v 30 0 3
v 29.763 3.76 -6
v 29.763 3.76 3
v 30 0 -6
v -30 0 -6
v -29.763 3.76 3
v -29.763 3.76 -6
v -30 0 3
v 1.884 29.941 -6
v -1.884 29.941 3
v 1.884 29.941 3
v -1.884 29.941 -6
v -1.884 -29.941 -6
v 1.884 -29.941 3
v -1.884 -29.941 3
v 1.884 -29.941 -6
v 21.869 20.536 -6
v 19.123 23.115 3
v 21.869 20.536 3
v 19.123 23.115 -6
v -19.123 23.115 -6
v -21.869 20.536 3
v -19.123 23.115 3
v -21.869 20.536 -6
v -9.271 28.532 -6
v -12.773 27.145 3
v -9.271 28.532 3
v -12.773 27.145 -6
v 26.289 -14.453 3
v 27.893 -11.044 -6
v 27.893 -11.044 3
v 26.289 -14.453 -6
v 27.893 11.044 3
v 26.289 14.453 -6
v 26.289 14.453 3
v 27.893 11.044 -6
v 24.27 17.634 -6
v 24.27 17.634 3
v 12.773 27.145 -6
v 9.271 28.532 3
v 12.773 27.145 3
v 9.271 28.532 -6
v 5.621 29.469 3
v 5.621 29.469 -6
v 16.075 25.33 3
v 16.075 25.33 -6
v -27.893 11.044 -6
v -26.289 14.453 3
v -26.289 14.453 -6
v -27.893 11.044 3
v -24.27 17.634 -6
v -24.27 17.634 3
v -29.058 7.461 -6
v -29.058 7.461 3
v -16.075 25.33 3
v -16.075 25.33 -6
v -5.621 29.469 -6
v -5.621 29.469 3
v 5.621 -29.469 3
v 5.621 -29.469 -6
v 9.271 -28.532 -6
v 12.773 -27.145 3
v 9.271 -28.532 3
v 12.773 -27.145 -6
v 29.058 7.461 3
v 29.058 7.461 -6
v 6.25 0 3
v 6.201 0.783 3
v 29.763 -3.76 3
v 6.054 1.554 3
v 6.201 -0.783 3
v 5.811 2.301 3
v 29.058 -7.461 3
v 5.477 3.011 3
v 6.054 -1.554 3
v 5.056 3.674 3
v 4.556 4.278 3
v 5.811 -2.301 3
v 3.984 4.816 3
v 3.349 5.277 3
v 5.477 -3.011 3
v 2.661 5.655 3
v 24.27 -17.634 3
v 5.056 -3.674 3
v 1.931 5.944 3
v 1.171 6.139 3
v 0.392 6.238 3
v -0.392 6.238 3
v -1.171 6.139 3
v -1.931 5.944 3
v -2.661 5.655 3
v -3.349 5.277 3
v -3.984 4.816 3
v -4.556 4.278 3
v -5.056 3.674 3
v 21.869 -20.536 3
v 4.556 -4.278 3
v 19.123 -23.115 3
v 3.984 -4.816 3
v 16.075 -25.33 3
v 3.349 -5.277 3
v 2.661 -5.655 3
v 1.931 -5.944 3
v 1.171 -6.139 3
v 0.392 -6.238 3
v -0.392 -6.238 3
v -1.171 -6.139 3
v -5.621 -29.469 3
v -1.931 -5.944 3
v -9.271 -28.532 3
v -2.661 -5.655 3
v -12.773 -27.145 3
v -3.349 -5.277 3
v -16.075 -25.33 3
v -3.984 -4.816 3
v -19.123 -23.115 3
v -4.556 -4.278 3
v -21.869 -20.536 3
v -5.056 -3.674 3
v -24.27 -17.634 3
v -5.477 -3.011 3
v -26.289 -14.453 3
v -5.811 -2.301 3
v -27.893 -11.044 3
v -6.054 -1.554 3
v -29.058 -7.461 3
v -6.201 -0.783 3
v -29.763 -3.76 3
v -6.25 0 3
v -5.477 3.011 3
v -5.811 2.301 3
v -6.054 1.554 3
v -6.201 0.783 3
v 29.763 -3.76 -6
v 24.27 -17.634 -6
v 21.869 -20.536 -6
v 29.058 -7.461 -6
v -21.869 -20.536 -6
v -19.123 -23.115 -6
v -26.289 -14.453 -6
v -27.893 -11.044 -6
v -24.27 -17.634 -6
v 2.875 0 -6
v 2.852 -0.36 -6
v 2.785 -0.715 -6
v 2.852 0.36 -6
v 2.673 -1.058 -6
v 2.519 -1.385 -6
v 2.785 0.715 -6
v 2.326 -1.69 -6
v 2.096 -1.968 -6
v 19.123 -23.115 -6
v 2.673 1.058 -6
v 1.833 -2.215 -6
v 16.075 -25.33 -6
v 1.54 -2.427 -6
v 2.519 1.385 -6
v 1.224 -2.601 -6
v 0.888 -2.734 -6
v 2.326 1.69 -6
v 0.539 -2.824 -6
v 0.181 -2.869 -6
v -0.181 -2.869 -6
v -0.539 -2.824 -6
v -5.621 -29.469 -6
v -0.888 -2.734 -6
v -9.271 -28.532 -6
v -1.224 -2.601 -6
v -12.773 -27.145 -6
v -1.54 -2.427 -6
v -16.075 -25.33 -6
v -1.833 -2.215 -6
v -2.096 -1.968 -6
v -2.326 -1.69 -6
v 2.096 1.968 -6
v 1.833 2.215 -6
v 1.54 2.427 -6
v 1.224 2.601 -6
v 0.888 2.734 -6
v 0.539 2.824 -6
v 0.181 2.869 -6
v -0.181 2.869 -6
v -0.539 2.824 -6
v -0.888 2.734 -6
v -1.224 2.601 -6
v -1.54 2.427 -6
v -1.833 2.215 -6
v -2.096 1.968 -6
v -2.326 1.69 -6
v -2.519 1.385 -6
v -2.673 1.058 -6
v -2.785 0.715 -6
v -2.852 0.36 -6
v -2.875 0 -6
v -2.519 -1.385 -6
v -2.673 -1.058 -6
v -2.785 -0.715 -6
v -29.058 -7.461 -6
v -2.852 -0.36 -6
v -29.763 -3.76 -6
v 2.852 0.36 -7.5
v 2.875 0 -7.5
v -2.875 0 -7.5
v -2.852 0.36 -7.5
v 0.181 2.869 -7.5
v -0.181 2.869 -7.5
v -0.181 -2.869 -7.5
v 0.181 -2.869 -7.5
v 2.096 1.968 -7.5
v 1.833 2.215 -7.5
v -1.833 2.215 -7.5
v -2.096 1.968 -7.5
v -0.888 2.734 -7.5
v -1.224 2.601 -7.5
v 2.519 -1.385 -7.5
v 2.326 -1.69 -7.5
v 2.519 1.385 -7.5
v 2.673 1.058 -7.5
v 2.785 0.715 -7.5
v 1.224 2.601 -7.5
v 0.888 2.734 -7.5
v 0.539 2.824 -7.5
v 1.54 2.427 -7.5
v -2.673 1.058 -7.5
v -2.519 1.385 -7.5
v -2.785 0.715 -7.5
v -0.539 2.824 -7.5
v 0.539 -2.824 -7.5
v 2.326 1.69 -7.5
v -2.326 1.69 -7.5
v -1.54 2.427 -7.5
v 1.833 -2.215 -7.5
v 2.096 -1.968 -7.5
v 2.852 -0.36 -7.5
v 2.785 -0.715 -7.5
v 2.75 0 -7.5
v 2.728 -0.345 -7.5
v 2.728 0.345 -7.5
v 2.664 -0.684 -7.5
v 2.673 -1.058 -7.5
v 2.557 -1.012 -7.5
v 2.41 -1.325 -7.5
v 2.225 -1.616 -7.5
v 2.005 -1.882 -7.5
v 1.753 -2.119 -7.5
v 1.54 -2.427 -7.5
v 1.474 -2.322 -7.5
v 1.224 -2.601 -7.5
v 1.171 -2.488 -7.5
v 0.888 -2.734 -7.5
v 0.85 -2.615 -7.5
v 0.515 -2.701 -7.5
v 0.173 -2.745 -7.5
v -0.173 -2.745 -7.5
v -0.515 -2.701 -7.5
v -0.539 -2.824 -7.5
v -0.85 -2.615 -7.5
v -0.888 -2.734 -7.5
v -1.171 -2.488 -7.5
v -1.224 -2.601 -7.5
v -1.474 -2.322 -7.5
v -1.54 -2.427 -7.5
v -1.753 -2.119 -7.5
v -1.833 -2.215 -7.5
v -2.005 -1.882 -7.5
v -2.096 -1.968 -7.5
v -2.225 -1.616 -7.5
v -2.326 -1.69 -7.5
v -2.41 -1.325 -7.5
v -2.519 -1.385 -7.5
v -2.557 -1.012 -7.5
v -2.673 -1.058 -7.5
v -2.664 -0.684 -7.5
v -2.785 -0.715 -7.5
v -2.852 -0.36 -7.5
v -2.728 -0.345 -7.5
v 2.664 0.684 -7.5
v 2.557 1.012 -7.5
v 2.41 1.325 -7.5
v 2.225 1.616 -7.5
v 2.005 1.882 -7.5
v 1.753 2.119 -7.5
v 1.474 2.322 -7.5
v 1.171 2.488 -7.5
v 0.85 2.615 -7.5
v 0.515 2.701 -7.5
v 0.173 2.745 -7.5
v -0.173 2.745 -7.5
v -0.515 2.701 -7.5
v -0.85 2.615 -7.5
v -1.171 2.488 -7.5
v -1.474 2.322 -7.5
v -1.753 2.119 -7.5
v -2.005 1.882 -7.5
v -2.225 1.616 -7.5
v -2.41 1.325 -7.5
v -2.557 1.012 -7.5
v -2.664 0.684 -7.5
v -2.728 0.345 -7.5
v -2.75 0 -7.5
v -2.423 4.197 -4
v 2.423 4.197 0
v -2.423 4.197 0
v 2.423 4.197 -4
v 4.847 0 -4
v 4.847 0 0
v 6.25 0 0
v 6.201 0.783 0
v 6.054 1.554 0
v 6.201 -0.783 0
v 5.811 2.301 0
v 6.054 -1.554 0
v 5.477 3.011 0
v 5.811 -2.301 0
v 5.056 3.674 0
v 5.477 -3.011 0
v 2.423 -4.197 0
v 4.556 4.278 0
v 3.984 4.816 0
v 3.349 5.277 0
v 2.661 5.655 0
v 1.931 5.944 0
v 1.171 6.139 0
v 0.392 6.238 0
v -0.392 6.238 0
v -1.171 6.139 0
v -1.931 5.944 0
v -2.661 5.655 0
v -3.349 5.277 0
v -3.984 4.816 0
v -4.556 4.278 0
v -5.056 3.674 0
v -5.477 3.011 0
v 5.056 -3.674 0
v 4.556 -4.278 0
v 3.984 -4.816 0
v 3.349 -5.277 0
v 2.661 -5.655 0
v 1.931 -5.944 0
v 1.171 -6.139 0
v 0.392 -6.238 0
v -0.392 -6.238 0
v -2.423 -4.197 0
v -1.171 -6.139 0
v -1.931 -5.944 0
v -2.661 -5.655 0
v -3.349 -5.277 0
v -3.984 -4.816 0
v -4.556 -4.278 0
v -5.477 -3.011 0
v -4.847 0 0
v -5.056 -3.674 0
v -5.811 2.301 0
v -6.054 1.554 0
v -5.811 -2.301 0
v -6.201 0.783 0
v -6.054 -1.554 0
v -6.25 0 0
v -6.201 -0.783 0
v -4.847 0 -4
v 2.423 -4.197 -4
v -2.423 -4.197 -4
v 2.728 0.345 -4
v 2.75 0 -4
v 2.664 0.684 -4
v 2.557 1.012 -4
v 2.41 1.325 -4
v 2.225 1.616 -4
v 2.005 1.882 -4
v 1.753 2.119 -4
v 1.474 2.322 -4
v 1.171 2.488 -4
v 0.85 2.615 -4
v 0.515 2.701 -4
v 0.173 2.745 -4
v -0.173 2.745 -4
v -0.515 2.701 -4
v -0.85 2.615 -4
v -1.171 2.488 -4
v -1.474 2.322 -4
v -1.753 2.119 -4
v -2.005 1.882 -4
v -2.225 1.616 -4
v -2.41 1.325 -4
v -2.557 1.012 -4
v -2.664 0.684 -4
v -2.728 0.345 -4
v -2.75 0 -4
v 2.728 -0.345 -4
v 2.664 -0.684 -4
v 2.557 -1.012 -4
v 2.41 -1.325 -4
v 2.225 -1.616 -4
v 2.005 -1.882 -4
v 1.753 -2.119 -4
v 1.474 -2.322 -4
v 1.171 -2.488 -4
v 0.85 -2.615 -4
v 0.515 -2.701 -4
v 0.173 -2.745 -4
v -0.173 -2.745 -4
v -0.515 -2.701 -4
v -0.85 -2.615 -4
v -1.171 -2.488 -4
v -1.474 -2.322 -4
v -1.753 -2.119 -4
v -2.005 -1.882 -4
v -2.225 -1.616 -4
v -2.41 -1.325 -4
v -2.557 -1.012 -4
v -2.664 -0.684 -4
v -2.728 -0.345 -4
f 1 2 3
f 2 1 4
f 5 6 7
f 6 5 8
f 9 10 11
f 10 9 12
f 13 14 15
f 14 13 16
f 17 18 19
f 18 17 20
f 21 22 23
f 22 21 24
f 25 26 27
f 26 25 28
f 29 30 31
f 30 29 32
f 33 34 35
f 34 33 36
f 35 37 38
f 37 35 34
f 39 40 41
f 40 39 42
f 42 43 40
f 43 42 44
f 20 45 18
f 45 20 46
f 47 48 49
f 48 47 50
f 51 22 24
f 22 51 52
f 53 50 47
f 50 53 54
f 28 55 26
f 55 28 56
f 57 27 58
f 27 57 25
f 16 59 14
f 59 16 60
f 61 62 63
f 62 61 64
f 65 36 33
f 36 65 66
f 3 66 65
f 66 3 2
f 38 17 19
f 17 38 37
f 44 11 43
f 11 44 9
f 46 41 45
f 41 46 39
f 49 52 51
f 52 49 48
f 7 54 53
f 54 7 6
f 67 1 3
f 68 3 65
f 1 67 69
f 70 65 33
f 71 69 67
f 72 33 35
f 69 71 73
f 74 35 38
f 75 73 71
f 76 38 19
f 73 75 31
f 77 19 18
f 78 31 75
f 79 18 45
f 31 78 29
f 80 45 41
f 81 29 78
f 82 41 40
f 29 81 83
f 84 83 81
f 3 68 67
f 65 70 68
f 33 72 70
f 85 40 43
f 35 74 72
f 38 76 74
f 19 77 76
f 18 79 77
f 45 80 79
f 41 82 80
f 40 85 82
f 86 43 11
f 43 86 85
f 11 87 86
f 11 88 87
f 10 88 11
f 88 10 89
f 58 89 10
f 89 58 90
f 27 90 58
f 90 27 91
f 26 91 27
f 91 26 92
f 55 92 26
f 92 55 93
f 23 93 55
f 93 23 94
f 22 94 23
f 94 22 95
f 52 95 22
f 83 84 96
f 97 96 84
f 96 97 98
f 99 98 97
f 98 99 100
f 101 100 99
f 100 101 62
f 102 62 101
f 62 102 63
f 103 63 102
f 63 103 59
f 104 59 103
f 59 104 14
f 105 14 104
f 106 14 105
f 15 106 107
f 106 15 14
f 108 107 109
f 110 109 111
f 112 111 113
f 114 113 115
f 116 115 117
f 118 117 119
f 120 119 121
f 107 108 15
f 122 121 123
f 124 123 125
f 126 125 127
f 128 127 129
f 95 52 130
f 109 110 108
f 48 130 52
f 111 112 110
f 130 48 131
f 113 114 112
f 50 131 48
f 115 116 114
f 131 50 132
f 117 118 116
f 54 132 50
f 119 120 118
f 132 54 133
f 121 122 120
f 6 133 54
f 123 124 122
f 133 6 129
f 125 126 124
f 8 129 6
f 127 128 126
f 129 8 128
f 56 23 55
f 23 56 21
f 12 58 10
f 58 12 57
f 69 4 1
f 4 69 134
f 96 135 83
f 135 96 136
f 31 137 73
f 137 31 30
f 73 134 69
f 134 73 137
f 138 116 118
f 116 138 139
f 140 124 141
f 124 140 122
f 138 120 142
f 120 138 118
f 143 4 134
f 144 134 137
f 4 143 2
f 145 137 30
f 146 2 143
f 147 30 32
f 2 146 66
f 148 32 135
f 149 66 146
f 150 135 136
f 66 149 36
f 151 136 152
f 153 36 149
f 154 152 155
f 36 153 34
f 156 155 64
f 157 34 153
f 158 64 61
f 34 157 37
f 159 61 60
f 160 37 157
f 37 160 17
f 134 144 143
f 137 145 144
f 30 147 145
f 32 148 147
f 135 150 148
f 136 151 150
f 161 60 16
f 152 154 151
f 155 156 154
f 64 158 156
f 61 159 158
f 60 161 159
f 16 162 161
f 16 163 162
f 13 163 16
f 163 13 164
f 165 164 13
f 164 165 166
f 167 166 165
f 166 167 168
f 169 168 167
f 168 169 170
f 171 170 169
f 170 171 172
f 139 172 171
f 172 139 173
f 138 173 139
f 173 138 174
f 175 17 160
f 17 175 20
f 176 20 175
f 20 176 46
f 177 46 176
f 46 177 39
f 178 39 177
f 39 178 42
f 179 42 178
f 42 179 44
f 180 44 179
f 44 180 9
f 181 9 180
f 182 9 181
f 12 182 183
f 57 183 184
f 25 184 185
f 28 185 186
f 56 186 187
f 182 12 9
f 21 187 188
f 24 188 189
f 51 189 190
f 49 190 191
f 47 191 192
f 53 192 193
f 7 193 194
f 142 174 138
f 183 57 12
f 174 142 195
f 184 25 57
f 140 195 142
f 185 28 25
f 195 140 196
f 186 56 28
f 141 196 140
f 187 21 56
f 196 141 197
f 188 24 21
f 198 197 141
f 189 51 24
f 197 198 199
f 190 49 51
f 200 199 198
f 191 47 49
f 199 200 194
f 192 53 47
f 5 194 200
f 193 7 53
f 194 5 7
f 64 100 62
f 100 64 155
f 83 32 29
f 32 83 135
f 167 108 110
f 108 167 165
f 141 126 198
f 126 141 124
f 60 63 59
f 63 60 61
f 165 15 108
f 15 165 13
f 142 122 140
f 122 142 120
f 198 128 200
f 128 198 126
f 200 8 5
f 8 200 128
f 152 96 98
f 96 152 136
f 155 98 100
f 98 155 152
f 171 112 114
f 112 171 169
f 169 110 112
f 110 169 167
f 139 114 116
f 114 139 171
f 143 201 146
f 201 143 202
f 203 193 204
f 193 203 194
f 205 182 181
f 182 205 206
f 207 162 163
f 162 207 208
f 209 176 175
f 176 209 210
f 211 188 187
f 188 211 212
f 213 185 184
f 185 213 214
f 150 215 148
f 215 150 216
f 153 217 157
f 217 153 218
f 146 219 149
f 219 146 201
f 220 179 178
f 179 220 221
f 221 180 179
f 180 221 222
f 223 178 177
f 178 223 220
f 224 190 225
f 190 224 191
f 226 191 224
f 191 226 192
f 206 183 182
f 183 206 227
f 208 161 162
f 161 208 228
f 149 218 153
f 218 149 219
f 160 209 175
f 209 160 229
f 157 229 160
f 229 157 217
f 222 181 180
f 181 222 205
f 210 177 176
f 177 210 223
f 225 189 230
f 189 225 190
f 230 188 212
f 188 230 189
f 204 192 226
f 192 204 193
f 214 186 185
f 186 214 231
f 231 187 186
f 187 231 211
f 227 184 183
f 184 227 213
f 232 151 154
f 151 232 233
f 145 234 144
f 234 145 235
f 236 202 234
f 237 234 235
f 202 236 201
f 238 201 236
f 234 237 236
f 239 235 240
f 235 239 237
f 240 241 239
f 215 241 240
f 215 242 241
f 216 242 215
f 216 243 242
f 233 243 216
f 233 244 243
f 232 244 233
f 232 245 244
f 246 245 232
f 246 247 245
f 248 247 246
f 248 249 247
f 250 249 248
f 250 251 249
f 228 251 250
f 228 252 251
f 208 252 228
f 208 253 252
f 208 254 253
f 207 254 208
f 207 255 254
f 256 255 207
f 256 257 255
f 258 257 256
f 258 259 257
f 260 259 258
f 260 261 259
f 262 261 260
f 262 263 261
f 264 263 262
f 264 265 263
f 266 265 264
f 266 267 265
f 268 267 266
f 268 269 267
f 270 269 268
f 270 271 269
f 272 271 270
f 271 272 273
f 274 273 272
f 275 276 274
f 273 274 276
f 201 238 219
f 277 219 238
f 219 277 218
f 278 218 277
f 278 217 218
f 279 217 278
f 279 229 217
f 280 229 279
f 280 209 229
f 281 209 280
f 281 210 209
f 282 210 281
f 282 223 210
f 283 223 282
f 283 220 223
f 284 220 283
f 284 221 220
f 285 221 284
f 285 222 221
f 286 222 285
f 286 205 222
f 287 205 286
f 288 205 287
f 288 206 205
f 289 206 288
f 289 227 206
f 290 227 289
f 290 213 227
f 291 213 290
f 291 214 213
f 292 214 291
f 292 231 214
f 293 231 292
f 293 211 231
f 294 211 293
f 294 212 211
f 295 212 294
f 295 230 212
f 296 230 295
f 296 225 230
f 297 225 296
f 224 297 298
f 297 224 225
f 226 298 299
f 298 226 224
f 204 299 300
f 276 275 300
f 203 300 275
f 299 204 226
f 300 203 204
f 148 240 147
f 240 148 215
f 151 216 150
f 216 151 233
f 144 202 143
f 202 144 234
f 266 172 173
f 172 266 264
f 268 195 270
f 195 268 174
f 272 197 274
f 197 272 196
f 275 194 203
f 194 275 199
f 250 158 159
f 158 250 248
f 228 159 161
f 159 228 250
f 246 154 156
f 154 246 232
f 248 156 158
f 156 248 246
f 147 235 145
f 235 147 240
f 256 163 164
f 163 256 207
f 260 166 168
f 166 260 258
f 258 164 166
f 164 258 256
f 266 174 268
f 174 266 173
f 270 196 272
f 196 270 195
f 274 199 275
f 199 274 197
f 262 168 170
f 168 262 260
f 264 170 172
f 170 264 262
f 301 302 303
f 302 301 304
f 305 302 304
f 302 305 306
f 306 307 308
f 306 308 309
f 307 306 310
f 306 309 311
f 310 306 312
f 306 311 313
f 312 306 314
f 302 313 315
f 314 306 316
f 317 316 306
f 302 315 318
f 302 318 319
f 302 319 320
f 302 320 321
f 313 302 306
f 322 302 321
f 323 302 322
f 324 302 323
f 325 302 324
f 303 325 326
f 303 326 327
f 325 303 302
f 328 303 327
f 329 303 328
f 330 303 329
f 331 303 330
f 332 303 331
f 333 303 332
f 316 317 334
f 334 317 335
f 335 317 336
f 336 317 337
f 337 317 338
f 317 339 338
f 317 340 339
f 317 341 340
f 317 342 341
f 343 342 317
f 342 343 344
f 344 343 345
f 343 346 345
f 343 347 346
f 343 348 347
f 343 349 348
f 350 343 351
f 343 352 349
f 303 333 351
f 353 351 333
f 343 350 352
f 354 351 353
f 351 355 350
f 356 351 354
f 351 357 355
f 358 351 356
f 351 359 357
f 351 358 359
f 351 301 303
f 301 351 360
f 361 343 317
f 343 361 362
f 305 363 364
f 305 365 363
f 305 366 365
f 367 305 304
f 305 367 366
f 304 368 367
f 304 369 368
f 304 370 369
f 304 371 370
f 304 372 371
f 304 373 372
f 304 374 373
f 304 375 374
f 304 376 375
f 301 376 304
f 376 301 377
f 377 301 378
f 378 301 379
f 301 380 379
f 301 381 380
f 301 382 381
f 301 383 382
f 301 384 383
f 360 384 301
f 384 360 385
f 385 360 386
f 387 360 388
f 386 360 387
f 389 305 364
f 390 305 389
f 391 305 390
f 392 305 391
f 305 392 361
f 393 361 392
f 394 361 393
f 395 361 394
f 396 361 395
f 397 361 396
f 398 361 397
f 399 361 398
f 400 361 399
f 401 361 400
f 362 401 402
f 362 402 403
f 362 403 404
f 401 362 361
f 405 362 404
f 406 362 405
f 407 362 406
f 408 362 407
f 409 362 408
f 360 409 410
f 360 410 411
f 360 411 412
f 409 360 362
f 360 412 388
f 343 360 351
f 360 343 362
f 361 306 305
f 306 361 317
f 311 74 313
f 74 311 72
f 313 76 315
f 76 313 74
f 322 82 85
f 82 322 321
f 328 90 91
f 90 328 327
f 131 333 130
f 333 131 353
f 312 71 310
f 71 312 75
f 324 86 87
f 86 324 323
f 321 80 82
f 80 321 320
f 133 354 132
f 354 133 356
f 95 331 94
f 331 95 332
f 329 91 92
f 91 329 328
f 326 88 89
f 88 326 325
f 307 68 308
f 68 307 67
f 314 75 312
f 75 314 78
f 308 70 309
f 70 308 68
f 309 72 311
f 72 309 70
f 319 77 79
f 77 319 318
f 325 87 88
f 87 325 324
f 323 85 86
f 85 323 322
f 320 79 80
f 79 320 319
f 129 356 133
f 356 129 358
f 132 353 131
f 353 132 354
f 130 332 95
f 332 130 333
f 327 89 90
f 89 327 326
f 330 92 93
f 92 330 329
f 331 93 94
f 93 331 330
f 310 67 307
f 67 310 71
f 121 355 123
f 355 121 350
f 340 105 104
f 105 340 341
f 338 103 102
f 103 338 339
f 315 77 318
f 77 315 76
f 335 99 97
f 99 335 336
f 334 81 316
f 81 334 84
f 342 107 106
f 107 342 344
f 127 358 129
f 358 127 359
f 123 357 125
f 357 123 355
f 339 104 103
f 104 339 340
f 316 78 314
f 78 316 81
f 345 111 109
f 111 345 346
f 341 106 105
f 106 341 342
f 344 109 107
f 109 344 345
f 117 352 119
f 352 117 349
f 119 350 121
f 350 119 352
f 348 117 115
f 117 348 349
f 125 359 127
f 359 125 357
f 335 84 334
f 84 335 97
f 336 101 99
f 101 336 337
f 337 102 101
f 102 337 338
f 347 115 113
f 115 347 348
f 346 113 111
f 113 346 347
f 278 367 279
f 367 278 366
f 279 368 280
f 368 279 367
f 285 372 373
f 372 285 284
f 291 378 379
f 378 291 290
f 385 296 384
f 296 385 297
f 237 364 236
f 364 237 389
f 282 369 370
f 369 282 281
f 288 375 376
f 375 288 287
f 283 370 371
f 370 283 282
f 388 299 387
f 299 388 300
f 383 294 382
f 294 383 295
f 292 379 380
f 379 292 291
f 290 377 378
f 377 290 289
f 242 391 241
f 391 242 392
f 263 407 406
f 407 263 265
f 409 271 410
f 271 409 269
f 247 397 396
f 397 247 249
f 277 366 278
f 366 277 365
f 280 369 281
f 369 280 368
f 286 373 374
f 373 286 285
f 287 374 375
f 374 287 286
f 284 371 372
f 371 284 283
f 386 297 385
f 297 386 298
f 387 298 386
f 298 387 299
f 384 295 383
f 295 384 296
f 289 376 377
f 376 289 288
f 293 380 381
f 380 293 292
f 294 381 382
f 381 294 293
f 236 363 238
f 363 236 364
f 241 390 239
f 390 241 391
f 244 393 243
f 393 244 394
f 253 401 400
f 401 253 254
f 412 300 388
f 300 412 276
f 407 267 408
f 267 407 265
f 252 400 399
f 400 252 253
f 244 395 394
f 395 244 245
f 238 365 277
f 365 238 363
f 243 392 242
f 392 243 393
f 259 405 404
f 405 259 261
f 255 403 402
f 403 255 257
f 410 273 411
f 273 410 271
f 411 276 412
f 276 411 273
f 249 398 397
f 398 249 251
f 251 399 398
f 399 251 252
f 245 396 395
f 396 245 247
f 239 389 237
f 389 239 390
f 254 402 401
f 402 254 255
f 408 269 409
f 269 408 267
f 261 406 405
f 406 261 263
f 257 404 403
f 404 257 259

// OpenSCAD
$fn = 50;

difference() {
	union() {
		translate(v = [0, 0, -6.0]) {
			cylinder(h = 9.0, r = 30.0);
		}
		#translate(v = [0, 0, -7.5]) {
			cylinder(h = 7.5, r = 2.875);
		}
	}
	union() {
		translate(v = [0, 0, 0]) {
			rotate(a = [0, 0, 0]) {
				difference() {
					union() {
						translate(v = [0, 0, -4]) {
							linear_extrude(height = 4) {
								polygon(points = [[4.8468, 0.0], [2.4234000000000004, 4.197451927062417], [-2.423399999999999, 4.197451927062417], [-4.8468, 5.935618106107392e-16], [-2.423400000000002, -4.197451927062416], [2.423399999999997, -4.197451927062419]]);
							}
						}
					}
					union();
				}
			}
		}
		#cylinder(h = 3, r = 6.25);
		#translate(v = [0, 0, -100.0]) {
			cylinder(h = 200, r = 2.75);
		}
	}
}
